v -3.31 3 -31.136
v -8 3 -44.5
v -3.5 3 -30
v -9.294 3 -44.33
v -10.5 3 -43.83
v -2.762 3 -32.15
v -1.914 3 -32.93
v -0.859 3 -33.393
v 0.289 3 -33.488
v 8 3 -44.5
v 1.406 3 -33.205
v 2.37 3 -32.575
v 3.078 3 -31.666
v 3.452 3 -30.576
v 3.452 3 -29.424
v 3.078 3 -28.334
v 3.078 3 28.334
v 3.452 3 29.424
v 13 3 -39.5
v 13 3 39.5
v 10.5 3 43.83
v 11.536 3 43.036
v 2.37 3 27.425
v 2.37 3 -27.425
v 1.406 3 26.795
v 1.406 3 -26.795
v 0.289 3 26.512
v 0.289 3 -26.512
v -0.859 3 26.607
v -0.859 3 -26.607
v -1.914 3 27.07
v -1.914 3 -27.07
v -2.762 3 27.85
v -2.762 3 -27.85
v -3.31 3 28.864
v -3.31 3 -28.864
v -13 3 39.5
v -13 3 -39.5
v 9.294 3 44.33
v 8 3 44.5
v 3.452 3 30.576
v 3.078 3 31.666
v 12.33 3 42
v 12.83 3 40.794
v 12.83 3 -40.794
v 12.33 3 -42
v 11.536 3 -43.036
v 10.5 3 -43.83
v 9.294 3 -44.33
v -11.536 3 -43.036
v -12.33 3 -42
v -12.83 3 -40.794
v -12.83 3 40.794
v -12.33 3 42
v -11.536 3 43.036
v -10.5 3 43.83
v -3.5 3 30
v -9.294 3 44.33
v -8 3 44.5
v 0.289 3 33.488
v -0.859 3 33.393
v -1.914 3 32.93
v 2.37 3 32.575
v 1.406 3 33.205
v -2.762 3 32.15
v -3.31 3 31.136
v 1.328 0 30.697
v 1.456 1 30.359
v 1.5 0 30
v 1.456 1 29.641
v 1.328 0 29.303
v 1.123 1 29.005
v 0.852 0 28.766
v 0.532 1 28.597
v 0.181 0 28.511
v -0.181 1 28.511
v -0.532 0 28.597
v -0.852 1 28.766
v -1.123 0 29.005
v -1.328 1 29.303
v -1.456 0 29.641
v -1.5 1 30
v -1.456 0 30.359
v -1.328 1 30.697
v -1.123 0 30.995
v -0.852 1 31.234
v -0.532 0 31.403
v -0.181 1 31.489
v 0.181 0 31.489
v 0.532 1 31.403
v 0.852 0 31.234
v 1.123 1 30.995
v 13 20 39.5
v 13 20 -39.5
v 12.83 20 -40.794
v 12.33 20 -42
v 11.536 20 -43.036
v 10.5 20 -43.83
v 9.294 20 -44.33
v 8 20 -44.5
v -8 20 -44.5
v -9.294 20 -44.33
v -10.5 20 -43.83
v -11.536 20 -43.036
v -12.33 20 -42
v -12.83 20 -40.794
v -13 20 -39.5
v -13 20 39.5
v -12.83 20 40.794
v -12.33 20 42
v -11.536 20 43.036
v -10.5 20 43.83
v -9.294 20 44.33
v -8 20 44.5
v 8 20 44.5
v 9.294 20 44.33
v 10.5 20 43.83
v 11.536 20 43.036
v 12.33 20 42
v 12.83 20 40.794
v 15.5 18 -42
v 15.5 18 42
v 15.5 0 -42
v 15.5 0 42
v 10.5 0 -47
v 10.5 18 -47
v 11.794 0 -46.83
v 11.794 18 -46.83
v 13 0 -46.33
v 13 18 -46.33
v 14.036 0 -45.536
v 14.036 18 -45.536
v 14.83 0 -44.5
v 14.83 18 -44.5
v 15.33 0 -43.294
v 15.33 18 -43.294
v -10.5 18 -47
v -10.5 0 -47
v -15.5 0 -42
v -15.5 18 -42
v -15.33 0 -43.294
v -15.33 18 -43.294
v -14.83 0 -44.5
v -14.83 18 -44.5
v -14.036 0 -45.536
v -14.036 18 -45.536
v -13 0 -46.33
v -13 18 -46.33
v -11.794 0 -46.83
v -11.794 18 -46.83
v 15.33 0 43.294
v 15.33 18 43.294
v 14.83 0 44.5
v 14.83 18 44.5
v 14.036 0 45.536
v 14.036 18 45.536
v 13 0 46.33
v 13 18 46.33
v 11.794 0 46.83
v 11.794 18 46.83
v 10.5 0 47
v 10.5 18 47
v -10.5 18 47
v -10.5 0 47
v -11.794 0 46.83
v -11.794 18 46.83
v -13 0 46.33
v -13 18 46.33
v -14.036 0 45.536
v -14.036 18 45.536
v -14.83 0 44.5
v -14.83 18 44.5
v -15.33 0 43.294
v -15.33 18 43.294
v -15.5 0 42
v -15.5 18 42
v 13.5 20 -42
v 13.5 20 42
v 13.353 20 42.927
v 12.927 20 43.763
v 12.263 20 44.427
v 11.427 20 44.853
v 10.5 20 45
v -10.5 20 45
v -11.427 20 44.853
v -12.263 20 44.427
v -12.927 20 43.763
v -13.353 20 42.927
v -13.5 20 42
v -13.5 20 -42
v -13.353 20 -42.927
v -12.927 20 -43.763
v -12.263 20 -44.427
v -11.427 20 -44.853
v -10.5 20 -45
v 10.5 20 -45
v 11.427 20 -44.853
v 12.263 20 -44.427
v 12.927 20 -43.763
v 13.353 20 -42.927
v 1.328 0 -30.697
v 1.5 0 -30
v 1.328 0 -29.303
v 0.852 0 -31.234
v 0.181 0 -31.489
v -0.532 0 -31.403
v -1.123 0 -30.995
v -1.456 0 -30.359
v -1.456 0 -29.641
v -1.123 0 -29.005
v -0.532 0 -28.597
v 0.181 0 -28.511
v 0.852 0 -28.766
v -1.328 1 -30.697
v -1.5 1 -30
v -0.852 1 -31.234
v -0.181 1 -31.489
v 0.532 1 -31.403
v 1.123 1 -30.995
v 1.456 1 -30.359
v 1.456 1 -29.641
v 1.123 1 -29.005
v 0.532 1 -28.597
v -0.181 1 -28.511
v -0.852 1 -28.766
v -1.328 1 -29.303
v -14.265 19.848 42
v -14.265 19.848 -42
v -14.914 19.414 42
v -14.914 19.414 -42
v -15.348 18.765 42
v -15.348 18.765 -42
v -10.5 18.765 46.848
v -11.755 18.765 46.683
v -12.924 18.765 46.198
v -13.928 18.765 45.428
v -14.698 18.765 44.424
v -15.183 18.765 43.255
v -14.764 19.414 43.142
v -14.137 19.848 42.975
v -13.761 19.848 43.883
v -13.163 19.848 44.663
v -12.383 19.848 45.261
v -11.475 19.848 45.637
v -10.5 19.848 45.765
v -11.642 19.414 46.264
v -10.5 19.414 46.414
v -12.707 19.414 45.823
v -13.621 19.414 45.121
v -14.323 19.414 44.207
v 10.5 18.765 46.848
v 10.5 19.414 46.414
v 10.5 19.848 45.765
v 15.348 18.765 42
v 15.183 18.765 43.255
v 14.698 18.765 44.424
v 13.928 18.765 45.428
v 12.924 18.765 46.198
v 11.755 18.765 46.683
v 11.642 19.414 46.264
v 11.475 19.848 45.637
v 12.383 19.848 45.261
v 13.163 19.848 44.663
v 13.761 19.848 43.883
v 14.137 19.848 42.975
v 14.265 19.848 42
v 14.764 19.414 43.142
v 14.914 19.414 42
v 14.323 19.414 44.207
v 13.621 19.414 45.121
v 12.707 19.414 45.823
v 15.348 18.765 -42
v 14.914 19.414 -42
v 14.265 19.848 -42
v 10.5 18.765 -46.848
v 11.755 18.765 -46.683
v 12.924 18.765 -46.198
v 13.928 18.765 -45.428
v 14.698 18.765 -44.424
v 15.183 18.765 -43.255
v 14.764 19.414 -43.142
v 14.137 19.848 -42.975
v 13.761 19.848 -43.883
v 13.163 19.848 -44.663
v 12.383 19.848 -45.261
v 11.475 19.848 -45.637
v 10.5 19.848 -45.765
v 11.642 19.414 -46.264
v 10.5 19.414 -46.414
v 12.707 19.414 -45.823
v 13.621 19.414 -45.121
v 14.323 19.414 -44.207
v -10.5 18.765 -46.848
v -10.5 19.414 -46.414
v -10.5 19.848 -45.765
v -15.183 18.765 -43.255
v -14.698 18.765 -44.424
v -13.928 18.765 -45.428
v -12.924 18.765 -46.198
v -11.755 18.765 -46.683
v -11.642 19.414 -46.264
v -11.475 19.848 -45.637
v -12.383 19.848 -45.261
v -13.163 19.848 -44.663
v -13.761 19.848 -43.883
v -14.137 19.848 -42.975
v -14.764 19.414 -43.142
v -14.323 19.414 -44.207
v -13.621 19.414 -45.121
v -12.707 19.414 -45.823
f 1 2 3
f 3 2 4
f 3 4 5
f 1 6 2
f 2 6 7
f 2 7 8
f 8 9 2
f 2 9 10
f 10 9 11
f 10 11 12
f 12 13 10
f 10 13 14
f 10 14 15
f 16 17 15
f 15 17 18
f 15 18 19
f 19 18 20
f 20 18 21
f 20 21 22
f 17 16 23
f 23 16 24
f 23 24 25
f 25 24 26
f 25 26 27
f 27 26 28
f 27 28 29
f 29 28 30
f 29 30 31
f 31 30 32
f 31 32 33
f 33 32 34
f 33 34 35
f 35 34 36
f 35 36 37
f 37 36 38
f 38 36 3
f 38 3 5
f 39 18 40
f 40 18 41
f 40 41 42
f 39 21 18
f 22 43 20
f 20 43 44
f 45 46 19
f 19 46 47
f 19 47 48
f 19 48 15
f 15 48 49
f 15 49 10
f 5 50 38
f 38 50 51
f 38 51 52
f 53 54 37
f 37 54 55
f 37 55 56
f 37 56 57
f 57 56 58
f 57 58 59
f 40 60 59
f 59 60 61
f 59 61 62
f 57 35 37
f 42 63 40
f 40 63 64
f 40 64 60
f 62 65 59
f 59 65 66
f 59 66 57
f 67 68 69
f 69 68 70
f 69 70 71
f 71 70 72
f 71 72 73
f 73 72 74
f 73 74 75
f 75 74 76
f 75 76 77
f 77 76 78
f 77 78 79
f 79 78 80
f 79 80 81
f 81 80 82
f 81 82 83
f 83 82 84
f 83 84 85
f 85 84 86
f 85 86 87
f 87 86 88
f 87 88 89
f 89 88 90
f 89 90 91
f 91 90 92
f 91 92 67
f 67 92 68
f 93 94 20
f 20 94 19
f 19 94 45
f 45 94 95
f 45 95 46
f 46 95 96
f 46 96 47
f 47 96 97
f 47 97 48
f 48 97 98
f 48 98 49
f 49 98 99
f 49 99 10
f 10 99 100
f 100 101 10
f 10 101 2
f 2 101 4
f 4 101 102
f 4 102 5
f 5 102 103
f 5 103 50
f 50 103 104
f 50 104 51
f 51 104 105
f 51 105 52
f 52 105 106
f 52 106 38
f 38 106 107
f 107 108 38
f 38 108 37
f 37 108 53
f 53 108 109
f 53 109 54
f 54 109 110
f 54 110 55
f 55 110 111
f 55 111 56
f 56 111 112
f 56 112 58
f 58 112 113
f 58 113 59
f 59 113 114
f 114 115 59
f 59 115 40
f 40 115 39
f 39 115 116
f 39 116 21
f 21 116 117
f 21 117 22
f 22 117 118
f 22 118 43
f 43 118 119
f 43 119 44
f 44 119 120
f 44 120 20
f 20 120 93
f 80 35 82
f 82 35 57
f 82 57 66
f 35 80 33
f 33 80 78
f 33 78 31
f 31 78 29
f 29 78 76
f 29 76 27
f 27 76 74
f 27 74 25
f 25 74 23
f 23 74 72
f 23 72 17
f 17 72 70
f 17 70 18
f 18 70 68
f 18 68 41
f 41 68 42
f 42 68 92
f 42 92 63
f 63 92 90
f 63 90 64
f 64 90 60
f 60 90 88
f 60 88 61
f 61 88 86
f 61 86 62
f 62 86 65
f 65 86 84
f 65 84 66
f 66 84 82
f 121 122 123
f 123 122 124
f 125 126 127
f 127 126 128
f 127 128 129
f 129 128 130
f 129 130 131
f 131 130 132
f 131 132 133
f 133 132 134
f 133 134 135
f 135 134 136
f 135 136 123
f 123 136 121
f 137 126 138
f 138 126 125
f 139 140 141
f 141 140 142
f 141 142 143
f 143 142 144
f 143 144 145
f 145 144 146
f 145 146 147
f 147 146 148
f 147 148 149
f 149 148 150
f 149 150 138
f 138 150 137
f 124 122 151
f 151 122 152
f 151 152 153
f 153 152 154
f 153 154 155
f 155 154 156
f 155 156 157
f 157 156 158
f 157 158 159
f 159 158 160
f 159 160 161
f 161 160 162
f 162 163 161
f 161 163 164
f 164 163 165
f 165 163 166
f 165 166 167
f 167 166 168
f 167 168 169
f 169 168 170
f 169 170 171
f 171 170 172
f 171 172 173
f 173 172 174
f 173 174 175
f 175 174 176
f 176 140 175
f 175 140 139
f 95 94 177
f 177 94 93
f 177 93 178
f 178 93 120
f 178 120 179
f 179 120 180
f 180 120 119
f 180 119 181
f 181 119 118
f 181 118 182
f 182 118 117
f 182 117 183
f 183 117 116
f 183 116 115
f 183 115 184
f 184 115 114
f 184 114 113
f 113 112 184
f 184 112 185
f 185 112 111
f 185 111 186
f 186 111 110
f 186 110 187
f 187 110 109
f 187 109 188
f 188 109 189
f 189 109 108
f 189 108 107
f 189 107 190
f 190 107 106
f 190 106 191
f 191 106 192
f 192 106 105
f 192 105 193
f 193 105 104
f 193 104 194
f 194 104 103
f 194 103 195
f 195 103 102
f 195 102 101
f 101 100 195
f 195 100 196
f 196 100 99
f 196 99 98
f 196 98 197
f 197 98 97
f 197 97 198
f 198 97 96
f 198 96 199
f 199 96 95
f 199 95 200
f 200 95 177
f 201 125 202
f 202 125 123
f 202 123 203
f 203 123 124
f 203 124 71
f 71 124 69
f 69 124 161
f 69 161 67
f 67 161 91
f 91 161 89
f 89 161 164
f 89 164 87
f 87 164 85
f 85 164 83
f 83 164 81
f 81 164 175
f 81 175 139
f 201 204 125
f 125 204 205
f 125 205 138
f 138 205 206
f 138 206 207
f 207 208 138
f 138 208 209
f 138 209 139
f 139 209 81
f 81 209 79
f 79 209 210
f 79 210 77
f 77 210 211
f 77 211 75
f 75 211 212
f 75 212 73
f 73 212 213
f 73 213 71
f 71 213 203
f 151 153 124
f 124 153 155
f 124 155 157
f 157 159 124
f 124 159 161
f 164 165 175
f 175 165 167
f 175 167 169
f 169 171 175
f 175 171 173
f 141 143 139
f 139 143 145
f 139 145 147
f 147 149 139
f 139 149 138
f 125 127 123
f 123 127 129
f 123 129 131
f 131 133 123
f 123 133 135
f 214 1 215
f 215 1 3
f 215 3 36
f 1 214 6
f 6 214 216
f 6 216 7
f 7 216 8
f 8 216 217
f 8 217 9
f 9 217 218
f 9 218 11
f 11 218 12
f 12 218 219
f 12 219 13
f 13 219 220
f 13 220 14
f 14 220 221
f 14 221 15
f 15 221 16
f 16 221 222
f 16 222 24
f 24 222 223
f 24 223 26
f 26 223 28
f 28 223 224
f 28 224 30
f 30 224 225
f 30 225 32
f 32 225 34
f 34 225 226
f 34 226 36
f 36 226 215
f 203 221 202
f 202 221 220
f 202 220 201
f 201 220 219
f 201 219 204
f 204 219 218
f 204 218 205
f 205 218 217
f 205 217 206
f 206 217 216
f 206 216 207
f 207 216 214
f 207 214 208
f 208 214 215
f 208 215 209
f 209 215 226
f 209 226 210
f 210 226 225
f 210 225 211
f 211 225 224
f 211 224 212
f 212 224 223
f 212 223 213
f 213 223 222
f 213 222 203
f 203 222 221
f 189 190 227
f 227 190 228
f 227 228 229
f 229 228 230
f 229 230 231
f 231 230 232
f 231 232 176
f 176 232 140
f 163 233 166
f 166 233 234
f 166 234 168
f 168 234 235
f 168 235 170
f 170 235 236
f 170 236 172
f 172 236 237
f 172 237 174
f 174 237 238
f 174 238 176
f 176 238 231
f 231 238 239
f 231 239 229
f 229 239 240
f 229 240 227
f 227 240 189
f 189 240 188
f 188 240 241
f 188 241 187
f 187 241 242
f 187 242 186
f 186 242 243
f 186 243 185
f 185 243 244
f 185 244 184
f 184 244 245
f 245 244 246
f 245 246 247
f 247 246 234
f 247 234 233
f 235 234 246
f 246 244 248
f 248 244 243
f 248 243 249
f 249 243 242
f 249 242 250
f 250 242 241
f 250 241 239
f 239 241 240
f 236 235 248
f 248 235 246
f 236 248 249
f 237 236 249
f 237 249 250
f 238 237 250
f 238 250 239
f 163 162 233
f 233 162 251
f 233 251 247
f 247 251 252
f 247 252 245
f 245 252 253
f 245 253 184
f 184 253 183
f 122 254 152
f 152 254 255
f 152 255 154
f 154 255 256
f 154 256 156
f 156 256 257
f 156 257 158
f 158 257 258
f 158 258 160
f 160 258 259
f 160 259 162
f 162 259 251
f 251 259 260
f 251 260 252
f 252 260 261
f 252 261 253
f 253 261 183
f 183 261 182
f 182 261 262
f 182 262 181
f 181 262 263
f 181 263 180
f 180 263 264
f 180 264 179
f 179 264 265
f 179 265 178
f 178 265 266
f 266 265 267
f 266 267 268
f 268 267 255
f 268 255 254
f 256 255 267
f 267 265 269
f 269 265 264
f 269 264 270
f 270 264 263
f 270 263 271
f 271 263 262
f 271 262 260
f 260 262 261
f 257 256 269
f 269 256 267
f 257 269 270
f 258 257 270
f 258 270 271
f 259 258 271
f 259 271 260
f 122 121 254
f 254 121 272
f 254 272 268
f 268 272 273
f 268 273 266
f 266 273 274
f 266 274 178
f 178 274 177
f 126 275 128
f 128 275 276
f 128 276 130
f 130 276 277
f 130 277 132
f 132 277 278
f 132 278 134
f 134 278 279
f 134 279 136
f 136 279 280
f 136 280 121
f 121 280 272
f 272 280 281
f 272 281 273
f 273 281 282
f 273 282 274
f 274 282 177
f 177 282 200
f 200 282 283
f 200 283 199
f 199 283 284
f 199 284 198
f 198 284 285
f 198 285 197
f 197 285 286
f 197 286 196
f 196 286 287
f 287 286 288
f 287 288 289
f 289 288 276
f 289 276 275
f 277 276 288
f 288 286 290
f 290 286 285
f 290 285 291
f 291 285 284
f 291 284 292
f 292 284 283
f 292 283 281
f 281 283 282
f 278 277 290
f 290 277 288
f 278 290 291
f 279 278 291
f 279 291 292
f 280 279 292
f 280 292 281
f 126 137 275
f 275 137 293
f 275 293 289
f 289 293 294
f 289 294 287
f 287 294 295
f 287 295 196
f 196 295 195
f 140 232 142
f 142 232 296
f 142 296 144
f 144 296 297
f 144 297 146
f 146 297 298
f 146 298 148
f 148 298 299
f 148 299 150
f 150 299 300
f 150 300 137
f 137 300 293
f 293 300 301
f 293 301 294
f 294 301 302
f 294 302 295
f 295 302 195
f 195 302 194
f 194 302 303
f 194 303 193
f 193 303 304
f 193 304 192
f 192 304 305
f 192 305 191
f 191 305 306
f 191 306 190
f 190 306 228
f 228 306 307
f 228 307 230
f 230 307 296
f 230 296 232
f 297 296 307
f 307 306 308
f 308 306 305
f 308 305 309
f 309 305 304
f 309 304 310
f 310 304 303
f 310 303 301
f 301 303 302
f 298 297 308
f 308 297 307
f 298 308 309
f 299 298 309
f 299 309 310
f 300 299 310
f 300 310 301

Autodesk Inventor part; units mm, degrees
ref_plane "YZ Plane" through (0, 0, 0) normal (1, 0, 0) x (0, 1, 0)
ref_plane "XZ Plane" through (0, 0, 0) normal (0, 1, 0) x (-1, 0, 0)
ref_plane "XY Plane" through (0, 0, 0) normal (0, 0, 1) x (1, 0, 0)
sketch "Esquisse1" plane through (0, 0, 0) normal (0, 1, 0) x (-1, 0, 0)
  line L0 (10.5, 47) -> (-10.5, 47)
  line L1 (-15.5, 42) -> (-15.5, -42)
  line L2 (-10.5, -47) -> (10.5, -47)
  line L3 (15.5, -42) -> (15.5, 42)
  line L4 (15.5, 47) -> (-15.5, -47) construction
  line L5 (-15.5, 47) -> (15.5, -47) construction
  arc A0 (15.5, 42) -> (10.5, 47) centre (10.5, 42) ccw
  arc A1 (-10.5, 47) -> (-15.5, 42) centre (-10.5, 42) ccw
  arc A2 (-15.5, -42) -> (-10.5, -47) centre (-10.5, -42) ccw
  arc A3 (10.5, -47) -> (15.5, -42) centre (10.5, -42) ccw
  point P0 (0, 0)
  dimension "d0" = 31
  dimension "d1" = 94
  dimension "d2" = 5
sketch "Esquisse2" plane through (0, 0, 0) normal (0, 1, 0) x (-1, 0, 0)
  point P0 (0, 0)
extrude "Extrusion1" add sketch "Esquisse1" along normal blind 20
sketch "Esquisse3" plane through (0, 20, 0) normal (0, 1, 0) x (1, 0, 0)
  line L0 (-8, -44.5) -> (8, -44.5)
  line L1 (13, -39.5) -> (13, 39.5)
  line L2 (8, 44.5) -> (-8, 44.5)
  line L3 (-13, 39.5) -> (-13, -39.5)
  line L4 (-13, -44.5) -> (13, 44.5) construction
  line L5 (13, -44.5) -> (-13, 44.5) construction
  arc A0 (-13, -39.5) -> (-8, -44.5) centre (-8, -39.5) ccw
  arc A1 (-8, 44.5) -> (-13, 39.5) centre (-8, 39.5) ccw
  arc A2 (13, 39.5) -> (8, 44.5) centre (8, 39.5) ccw
  arc A3 (8, -44.5) -> (13, -39.5) centre (8, -39.5) ccw
  circle A4 centre (0, 30) radius 1.5
  line L6 (-13, 0) -> (13, 0)
  circle A5 centre (0, -30) radius 1.5
  point P0 (0, 0)
  dimension "d5" = 26
  dimension "d6" = 89
  dimension "d7" = 5
  dimension "d10" = 3
  dimension "d11" = 30
extrude "Extrusion2" cut sketch "Esquisse3" against normal blind 17 contours A0 L3 L6 L1 A3 L0 | L3 A1 L2 A2 L1 L6 | A4 | A5
extrude "Extrusion3" cut sketch "Esquisse3" against normal blind 20 contours A4 | A5
chamfer "Chanfrein1" distance 2 angle 45 2 edges at (-1.5, 3, -30) (-1.5, 3, 30)
fillet "Congé1" radius 2 8 edges at (-15.5, 20, 0) (-14.0355, 20, 45.5355) (0, 20, 47) (14.0355, 20, 45.5355) (15.5, 20, 0) (14.0355, 20, -45.5355) (0, 20, -47) (-14.0355, 20, -45.5355)
properties part number "Support"
